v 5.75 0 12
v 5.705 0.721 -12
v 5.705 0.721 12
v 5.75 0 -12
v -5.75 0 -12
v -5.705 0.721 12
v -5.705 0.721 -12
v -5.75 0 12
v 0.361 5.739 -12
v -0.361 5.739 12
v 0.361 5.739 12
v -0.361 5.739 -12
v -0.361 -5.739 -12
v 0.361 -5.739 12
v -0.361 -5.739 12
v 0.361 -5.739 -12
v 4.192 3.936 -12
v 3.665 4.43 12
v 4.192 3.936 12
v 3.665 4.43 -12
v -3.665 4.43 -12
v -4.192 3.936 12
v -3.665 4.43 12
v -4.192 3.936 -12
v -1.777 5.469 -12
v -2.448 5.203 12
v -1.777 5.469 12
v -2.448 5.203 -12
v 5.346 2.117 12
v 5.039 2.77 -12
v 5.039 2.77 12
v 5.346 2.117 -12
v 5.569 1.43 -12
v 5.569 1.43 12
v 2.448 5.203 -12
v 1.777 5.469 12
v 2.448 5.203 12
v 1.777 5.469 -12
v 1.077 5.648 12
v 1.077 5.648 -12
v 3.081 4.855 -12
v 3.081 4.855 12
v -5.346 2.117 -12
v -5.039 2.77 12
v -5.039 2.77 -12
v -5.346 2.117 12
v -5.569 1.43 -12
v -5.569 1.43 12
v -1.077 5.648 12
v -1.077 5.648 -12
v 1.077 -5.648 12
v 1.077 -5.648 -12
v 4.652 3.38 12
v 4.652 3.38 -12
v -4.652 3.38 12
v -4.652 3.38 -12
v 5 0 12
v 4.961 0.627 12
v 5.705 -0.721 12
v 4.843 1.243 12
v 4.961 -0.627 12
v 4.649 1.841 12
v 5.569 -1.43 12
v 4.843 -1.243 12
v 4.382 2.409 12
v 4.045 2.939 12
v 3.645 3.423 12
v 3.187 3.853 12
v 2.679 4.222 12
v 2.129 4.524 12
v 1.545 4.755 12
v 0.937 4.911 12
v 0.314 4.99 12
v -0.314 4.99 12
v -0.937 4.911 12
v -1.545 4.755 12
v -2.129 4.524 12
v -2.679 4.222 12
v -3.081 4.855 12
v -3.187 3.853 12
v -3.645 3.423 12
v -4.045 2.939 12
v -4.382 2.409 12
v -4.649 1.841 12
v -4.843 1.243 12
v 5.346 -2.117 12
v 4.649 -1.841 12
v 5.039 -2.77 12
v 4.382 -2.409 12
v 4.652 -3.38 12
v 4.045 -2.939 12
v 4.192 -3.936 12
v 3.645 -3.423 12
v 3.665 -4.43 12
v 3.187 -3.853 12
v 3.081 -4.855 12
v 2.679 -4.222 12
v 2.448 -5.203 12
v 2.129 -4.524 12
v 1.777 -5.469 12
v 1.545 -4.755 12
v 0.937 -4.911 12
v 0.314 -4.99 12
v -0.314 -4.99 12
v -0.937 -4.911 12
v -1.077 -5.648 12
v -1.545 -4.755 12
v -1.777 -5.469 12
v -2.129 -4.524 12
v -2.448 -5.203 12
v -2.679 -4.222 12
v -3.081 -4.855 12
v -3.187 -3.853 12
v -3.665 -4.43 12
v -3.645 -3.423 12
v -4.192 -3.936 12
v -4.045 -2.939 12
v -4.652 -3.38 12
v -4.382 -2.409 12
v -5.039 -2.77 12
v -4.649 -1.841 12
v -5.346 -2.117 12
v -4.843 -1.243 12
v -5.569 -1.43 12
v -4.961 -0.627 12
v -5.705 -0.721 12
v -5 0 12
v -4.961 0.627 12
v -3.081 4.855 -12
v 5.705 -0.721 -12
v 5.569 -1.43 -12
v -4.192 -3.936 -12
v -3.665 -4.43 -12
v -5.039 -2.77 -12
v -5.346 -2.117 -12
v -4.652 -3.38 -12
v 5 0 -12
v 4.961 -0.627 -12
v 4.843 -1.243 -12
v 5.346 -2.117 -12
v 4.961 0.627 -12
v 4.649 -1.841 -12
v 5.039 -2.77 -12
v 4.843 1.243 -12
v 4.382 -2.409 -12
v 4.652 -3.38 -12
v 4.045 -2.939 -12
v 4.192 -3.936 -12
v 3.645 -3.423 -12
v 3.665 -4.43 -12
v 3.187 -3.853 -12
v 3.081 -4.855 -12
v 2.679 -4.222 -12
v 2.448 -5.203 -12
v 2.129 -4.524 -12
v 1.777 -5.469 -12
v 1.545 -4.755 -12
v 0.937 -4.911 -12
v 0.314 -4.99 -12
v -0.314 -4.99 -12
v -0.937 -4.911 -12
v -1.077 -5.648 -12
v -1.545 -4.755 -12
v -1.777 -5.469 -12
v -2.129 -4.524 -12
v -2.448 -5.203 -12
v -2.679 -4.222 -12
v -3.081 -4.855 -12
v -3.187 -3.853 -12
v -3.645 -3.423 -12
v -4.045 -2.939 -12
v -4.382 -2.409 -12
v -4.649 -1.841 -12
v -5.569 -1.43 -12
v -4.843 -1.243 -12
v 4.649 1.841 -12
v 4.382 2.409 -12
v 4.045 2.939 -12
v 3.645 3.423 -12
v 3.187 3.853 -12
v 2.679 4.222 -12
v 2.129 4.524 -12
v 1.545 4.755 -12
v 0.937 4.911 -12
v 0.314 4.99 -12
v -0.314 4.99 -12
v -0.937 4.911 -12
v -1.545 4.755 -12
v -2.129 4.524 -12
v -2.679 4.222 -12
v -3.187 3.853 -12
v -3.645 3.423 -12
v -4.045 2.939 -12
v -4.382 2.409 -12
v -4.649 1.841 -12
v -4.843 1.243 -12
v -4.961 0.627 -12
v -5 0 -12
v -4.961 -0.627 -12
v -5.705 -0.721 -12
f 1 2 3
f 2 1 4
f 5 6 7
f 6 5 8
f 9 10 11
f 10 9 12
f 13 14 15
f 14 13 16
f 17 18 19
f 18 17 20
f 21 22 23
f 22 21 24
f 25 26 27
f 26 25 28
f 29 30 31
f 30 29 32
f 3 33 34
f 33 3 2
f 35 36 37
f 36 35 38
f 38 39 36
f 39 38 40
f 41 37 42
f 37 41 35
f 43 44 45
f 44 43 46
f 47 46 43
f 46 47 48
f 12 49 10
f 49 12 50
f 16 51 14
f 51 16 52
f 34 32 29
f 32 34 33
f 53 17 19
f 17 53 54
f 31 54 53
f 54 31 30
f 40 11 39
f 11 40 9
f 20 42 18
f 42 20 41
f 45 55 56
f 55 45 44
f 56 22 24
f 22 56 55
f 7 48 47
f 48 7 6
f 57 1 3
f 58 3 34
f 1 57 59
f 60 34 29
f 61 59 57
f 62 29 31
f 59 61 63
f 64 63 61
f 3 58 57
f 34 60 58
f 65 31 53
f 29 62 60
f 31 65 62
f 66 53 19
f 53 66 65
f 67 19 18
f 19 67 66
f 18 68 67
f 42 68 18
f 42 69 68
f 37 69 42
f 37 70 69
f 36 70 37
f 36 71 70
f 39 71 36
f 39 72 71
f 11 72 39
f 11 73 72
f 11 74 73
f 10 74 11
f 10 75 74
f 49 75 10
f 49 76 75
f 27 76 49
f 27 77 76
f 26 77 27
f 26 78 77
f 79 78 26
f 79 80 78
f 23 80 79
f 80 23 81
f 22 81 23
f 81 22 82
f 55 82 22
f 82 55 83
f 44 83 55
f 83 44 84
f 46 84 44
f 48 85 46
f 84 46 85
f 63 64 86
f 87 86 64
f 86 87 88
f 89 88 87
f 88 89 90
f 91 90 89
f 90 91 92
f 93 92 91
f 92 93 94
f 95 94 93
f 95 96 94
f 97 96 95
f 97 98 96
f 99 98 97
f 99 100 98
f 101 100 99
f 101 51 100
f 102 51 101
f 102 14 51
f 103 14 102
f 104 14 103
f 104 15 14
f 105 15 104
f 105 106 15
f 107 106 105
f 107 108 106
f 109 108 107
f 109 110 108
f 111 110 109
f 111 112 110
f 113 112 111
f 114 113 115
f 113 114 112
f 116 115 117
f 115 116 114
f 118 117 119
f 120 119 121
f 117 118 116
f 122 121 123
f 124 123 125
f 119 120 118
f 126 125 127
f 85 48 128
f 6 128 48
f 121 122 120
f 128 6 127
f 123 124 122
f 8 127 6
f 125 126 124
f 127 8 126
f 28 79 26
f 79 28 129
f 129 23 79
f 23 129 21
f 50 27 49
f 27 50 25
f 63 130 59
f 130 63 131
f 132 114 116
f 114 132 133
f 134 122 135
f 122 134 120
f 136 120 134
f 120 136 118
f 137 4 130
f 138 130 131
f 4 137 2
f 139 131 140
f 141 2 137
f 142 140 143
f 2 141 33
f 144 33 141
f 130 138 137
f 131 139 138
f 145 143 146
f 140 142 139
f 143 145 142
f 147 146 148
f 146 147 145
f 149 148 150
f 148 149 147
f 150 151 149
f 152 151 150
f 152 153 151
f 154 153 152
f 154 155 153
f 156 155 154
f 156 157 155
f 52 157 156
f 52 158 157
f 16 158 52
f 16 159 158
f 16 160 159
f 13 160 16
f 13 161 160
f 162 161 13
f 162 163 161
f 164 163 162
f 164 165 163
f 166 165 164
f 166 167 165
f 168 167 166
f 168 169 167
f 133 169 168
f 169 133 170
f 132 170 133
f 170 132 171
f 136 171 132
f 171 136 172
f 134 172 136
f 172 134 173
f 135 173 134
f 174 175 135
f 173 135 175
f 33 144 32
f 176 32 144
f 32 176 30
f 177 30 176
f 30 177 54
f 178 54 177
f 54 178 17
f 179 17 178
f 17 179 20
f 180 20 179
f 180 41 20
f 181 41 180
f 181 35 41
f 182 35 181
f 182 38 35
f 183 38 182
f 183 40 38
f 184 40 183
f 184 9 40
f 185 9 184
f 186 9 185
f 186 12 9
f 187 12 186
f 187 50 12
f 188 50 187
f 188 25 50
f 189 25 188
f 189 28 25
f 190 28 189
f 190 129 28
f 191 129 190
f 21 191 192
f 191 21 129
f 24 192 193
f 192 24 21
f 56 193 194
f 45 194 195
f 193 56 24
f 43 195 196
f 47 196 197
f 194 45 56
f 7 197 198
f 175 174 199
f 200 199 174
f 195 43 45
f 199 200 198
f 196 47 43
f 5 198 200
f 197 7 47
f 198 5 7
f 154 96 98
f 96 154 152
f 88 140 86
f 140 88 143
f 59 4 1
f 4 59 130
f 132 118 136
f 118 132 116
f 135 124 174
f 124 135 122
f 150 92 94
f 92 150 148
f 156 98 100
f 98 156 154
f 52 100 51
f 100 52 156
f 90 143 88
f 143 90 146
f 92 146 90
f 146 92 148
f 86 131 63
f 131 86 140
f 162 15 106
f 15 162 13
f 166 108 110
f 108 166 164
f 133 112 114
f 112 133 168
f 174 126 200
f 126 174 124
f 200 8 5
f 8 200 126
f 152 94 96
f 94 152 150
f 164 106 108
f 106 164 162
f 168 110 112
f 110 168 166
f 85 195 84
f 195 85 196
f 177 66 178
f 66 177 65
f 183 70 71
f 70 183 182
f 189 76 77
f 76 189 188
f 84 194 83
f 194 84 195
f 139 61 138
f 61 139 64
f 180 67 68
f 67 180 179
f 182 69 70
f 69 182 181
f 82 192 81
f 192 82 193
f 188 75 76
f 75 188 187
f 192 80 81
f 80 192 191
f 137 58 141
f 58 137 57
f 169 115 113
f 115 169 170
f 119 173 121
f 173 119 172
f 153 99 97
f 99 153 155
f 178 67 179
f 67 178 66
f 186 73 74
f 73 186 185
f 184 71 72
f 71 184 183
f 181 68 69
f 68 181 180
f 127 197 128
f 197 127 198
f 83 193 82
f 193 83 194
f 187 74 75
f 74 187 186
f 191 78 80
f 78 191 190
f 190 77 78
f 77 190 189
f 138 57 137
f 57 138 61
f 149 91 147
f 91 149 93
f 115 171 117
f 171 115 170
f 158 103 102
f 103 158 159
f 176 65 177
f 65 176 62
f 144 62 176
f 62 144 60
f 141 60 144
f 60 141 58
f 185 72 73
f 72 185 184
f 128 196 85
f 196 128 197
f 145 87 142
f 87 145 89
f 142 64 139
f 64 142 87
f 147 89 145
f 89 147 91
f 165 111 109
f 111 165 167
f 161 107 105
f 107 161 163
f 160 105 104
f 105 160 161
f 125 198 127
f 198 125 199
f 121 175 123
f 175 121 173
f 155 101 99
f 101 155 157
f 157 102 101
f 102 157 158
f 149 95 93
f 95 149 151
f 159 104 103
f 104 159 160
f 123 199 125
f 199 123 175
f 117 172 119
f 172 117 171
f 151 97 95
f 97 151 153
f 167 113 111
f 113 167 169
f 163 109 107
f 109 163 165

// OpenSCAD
$fn = 50;


difference() {
	union() {
		translate(v = [0, 0, -12.0000000000]) {
			cylinder(h = 24, r = 5.7500000000);
		}
	}
	union() {
		translate(v = [0, 0, -100.0000000000]) {
			cylinder(h = 200, r = 5.0000000000);
		}
	}
}
